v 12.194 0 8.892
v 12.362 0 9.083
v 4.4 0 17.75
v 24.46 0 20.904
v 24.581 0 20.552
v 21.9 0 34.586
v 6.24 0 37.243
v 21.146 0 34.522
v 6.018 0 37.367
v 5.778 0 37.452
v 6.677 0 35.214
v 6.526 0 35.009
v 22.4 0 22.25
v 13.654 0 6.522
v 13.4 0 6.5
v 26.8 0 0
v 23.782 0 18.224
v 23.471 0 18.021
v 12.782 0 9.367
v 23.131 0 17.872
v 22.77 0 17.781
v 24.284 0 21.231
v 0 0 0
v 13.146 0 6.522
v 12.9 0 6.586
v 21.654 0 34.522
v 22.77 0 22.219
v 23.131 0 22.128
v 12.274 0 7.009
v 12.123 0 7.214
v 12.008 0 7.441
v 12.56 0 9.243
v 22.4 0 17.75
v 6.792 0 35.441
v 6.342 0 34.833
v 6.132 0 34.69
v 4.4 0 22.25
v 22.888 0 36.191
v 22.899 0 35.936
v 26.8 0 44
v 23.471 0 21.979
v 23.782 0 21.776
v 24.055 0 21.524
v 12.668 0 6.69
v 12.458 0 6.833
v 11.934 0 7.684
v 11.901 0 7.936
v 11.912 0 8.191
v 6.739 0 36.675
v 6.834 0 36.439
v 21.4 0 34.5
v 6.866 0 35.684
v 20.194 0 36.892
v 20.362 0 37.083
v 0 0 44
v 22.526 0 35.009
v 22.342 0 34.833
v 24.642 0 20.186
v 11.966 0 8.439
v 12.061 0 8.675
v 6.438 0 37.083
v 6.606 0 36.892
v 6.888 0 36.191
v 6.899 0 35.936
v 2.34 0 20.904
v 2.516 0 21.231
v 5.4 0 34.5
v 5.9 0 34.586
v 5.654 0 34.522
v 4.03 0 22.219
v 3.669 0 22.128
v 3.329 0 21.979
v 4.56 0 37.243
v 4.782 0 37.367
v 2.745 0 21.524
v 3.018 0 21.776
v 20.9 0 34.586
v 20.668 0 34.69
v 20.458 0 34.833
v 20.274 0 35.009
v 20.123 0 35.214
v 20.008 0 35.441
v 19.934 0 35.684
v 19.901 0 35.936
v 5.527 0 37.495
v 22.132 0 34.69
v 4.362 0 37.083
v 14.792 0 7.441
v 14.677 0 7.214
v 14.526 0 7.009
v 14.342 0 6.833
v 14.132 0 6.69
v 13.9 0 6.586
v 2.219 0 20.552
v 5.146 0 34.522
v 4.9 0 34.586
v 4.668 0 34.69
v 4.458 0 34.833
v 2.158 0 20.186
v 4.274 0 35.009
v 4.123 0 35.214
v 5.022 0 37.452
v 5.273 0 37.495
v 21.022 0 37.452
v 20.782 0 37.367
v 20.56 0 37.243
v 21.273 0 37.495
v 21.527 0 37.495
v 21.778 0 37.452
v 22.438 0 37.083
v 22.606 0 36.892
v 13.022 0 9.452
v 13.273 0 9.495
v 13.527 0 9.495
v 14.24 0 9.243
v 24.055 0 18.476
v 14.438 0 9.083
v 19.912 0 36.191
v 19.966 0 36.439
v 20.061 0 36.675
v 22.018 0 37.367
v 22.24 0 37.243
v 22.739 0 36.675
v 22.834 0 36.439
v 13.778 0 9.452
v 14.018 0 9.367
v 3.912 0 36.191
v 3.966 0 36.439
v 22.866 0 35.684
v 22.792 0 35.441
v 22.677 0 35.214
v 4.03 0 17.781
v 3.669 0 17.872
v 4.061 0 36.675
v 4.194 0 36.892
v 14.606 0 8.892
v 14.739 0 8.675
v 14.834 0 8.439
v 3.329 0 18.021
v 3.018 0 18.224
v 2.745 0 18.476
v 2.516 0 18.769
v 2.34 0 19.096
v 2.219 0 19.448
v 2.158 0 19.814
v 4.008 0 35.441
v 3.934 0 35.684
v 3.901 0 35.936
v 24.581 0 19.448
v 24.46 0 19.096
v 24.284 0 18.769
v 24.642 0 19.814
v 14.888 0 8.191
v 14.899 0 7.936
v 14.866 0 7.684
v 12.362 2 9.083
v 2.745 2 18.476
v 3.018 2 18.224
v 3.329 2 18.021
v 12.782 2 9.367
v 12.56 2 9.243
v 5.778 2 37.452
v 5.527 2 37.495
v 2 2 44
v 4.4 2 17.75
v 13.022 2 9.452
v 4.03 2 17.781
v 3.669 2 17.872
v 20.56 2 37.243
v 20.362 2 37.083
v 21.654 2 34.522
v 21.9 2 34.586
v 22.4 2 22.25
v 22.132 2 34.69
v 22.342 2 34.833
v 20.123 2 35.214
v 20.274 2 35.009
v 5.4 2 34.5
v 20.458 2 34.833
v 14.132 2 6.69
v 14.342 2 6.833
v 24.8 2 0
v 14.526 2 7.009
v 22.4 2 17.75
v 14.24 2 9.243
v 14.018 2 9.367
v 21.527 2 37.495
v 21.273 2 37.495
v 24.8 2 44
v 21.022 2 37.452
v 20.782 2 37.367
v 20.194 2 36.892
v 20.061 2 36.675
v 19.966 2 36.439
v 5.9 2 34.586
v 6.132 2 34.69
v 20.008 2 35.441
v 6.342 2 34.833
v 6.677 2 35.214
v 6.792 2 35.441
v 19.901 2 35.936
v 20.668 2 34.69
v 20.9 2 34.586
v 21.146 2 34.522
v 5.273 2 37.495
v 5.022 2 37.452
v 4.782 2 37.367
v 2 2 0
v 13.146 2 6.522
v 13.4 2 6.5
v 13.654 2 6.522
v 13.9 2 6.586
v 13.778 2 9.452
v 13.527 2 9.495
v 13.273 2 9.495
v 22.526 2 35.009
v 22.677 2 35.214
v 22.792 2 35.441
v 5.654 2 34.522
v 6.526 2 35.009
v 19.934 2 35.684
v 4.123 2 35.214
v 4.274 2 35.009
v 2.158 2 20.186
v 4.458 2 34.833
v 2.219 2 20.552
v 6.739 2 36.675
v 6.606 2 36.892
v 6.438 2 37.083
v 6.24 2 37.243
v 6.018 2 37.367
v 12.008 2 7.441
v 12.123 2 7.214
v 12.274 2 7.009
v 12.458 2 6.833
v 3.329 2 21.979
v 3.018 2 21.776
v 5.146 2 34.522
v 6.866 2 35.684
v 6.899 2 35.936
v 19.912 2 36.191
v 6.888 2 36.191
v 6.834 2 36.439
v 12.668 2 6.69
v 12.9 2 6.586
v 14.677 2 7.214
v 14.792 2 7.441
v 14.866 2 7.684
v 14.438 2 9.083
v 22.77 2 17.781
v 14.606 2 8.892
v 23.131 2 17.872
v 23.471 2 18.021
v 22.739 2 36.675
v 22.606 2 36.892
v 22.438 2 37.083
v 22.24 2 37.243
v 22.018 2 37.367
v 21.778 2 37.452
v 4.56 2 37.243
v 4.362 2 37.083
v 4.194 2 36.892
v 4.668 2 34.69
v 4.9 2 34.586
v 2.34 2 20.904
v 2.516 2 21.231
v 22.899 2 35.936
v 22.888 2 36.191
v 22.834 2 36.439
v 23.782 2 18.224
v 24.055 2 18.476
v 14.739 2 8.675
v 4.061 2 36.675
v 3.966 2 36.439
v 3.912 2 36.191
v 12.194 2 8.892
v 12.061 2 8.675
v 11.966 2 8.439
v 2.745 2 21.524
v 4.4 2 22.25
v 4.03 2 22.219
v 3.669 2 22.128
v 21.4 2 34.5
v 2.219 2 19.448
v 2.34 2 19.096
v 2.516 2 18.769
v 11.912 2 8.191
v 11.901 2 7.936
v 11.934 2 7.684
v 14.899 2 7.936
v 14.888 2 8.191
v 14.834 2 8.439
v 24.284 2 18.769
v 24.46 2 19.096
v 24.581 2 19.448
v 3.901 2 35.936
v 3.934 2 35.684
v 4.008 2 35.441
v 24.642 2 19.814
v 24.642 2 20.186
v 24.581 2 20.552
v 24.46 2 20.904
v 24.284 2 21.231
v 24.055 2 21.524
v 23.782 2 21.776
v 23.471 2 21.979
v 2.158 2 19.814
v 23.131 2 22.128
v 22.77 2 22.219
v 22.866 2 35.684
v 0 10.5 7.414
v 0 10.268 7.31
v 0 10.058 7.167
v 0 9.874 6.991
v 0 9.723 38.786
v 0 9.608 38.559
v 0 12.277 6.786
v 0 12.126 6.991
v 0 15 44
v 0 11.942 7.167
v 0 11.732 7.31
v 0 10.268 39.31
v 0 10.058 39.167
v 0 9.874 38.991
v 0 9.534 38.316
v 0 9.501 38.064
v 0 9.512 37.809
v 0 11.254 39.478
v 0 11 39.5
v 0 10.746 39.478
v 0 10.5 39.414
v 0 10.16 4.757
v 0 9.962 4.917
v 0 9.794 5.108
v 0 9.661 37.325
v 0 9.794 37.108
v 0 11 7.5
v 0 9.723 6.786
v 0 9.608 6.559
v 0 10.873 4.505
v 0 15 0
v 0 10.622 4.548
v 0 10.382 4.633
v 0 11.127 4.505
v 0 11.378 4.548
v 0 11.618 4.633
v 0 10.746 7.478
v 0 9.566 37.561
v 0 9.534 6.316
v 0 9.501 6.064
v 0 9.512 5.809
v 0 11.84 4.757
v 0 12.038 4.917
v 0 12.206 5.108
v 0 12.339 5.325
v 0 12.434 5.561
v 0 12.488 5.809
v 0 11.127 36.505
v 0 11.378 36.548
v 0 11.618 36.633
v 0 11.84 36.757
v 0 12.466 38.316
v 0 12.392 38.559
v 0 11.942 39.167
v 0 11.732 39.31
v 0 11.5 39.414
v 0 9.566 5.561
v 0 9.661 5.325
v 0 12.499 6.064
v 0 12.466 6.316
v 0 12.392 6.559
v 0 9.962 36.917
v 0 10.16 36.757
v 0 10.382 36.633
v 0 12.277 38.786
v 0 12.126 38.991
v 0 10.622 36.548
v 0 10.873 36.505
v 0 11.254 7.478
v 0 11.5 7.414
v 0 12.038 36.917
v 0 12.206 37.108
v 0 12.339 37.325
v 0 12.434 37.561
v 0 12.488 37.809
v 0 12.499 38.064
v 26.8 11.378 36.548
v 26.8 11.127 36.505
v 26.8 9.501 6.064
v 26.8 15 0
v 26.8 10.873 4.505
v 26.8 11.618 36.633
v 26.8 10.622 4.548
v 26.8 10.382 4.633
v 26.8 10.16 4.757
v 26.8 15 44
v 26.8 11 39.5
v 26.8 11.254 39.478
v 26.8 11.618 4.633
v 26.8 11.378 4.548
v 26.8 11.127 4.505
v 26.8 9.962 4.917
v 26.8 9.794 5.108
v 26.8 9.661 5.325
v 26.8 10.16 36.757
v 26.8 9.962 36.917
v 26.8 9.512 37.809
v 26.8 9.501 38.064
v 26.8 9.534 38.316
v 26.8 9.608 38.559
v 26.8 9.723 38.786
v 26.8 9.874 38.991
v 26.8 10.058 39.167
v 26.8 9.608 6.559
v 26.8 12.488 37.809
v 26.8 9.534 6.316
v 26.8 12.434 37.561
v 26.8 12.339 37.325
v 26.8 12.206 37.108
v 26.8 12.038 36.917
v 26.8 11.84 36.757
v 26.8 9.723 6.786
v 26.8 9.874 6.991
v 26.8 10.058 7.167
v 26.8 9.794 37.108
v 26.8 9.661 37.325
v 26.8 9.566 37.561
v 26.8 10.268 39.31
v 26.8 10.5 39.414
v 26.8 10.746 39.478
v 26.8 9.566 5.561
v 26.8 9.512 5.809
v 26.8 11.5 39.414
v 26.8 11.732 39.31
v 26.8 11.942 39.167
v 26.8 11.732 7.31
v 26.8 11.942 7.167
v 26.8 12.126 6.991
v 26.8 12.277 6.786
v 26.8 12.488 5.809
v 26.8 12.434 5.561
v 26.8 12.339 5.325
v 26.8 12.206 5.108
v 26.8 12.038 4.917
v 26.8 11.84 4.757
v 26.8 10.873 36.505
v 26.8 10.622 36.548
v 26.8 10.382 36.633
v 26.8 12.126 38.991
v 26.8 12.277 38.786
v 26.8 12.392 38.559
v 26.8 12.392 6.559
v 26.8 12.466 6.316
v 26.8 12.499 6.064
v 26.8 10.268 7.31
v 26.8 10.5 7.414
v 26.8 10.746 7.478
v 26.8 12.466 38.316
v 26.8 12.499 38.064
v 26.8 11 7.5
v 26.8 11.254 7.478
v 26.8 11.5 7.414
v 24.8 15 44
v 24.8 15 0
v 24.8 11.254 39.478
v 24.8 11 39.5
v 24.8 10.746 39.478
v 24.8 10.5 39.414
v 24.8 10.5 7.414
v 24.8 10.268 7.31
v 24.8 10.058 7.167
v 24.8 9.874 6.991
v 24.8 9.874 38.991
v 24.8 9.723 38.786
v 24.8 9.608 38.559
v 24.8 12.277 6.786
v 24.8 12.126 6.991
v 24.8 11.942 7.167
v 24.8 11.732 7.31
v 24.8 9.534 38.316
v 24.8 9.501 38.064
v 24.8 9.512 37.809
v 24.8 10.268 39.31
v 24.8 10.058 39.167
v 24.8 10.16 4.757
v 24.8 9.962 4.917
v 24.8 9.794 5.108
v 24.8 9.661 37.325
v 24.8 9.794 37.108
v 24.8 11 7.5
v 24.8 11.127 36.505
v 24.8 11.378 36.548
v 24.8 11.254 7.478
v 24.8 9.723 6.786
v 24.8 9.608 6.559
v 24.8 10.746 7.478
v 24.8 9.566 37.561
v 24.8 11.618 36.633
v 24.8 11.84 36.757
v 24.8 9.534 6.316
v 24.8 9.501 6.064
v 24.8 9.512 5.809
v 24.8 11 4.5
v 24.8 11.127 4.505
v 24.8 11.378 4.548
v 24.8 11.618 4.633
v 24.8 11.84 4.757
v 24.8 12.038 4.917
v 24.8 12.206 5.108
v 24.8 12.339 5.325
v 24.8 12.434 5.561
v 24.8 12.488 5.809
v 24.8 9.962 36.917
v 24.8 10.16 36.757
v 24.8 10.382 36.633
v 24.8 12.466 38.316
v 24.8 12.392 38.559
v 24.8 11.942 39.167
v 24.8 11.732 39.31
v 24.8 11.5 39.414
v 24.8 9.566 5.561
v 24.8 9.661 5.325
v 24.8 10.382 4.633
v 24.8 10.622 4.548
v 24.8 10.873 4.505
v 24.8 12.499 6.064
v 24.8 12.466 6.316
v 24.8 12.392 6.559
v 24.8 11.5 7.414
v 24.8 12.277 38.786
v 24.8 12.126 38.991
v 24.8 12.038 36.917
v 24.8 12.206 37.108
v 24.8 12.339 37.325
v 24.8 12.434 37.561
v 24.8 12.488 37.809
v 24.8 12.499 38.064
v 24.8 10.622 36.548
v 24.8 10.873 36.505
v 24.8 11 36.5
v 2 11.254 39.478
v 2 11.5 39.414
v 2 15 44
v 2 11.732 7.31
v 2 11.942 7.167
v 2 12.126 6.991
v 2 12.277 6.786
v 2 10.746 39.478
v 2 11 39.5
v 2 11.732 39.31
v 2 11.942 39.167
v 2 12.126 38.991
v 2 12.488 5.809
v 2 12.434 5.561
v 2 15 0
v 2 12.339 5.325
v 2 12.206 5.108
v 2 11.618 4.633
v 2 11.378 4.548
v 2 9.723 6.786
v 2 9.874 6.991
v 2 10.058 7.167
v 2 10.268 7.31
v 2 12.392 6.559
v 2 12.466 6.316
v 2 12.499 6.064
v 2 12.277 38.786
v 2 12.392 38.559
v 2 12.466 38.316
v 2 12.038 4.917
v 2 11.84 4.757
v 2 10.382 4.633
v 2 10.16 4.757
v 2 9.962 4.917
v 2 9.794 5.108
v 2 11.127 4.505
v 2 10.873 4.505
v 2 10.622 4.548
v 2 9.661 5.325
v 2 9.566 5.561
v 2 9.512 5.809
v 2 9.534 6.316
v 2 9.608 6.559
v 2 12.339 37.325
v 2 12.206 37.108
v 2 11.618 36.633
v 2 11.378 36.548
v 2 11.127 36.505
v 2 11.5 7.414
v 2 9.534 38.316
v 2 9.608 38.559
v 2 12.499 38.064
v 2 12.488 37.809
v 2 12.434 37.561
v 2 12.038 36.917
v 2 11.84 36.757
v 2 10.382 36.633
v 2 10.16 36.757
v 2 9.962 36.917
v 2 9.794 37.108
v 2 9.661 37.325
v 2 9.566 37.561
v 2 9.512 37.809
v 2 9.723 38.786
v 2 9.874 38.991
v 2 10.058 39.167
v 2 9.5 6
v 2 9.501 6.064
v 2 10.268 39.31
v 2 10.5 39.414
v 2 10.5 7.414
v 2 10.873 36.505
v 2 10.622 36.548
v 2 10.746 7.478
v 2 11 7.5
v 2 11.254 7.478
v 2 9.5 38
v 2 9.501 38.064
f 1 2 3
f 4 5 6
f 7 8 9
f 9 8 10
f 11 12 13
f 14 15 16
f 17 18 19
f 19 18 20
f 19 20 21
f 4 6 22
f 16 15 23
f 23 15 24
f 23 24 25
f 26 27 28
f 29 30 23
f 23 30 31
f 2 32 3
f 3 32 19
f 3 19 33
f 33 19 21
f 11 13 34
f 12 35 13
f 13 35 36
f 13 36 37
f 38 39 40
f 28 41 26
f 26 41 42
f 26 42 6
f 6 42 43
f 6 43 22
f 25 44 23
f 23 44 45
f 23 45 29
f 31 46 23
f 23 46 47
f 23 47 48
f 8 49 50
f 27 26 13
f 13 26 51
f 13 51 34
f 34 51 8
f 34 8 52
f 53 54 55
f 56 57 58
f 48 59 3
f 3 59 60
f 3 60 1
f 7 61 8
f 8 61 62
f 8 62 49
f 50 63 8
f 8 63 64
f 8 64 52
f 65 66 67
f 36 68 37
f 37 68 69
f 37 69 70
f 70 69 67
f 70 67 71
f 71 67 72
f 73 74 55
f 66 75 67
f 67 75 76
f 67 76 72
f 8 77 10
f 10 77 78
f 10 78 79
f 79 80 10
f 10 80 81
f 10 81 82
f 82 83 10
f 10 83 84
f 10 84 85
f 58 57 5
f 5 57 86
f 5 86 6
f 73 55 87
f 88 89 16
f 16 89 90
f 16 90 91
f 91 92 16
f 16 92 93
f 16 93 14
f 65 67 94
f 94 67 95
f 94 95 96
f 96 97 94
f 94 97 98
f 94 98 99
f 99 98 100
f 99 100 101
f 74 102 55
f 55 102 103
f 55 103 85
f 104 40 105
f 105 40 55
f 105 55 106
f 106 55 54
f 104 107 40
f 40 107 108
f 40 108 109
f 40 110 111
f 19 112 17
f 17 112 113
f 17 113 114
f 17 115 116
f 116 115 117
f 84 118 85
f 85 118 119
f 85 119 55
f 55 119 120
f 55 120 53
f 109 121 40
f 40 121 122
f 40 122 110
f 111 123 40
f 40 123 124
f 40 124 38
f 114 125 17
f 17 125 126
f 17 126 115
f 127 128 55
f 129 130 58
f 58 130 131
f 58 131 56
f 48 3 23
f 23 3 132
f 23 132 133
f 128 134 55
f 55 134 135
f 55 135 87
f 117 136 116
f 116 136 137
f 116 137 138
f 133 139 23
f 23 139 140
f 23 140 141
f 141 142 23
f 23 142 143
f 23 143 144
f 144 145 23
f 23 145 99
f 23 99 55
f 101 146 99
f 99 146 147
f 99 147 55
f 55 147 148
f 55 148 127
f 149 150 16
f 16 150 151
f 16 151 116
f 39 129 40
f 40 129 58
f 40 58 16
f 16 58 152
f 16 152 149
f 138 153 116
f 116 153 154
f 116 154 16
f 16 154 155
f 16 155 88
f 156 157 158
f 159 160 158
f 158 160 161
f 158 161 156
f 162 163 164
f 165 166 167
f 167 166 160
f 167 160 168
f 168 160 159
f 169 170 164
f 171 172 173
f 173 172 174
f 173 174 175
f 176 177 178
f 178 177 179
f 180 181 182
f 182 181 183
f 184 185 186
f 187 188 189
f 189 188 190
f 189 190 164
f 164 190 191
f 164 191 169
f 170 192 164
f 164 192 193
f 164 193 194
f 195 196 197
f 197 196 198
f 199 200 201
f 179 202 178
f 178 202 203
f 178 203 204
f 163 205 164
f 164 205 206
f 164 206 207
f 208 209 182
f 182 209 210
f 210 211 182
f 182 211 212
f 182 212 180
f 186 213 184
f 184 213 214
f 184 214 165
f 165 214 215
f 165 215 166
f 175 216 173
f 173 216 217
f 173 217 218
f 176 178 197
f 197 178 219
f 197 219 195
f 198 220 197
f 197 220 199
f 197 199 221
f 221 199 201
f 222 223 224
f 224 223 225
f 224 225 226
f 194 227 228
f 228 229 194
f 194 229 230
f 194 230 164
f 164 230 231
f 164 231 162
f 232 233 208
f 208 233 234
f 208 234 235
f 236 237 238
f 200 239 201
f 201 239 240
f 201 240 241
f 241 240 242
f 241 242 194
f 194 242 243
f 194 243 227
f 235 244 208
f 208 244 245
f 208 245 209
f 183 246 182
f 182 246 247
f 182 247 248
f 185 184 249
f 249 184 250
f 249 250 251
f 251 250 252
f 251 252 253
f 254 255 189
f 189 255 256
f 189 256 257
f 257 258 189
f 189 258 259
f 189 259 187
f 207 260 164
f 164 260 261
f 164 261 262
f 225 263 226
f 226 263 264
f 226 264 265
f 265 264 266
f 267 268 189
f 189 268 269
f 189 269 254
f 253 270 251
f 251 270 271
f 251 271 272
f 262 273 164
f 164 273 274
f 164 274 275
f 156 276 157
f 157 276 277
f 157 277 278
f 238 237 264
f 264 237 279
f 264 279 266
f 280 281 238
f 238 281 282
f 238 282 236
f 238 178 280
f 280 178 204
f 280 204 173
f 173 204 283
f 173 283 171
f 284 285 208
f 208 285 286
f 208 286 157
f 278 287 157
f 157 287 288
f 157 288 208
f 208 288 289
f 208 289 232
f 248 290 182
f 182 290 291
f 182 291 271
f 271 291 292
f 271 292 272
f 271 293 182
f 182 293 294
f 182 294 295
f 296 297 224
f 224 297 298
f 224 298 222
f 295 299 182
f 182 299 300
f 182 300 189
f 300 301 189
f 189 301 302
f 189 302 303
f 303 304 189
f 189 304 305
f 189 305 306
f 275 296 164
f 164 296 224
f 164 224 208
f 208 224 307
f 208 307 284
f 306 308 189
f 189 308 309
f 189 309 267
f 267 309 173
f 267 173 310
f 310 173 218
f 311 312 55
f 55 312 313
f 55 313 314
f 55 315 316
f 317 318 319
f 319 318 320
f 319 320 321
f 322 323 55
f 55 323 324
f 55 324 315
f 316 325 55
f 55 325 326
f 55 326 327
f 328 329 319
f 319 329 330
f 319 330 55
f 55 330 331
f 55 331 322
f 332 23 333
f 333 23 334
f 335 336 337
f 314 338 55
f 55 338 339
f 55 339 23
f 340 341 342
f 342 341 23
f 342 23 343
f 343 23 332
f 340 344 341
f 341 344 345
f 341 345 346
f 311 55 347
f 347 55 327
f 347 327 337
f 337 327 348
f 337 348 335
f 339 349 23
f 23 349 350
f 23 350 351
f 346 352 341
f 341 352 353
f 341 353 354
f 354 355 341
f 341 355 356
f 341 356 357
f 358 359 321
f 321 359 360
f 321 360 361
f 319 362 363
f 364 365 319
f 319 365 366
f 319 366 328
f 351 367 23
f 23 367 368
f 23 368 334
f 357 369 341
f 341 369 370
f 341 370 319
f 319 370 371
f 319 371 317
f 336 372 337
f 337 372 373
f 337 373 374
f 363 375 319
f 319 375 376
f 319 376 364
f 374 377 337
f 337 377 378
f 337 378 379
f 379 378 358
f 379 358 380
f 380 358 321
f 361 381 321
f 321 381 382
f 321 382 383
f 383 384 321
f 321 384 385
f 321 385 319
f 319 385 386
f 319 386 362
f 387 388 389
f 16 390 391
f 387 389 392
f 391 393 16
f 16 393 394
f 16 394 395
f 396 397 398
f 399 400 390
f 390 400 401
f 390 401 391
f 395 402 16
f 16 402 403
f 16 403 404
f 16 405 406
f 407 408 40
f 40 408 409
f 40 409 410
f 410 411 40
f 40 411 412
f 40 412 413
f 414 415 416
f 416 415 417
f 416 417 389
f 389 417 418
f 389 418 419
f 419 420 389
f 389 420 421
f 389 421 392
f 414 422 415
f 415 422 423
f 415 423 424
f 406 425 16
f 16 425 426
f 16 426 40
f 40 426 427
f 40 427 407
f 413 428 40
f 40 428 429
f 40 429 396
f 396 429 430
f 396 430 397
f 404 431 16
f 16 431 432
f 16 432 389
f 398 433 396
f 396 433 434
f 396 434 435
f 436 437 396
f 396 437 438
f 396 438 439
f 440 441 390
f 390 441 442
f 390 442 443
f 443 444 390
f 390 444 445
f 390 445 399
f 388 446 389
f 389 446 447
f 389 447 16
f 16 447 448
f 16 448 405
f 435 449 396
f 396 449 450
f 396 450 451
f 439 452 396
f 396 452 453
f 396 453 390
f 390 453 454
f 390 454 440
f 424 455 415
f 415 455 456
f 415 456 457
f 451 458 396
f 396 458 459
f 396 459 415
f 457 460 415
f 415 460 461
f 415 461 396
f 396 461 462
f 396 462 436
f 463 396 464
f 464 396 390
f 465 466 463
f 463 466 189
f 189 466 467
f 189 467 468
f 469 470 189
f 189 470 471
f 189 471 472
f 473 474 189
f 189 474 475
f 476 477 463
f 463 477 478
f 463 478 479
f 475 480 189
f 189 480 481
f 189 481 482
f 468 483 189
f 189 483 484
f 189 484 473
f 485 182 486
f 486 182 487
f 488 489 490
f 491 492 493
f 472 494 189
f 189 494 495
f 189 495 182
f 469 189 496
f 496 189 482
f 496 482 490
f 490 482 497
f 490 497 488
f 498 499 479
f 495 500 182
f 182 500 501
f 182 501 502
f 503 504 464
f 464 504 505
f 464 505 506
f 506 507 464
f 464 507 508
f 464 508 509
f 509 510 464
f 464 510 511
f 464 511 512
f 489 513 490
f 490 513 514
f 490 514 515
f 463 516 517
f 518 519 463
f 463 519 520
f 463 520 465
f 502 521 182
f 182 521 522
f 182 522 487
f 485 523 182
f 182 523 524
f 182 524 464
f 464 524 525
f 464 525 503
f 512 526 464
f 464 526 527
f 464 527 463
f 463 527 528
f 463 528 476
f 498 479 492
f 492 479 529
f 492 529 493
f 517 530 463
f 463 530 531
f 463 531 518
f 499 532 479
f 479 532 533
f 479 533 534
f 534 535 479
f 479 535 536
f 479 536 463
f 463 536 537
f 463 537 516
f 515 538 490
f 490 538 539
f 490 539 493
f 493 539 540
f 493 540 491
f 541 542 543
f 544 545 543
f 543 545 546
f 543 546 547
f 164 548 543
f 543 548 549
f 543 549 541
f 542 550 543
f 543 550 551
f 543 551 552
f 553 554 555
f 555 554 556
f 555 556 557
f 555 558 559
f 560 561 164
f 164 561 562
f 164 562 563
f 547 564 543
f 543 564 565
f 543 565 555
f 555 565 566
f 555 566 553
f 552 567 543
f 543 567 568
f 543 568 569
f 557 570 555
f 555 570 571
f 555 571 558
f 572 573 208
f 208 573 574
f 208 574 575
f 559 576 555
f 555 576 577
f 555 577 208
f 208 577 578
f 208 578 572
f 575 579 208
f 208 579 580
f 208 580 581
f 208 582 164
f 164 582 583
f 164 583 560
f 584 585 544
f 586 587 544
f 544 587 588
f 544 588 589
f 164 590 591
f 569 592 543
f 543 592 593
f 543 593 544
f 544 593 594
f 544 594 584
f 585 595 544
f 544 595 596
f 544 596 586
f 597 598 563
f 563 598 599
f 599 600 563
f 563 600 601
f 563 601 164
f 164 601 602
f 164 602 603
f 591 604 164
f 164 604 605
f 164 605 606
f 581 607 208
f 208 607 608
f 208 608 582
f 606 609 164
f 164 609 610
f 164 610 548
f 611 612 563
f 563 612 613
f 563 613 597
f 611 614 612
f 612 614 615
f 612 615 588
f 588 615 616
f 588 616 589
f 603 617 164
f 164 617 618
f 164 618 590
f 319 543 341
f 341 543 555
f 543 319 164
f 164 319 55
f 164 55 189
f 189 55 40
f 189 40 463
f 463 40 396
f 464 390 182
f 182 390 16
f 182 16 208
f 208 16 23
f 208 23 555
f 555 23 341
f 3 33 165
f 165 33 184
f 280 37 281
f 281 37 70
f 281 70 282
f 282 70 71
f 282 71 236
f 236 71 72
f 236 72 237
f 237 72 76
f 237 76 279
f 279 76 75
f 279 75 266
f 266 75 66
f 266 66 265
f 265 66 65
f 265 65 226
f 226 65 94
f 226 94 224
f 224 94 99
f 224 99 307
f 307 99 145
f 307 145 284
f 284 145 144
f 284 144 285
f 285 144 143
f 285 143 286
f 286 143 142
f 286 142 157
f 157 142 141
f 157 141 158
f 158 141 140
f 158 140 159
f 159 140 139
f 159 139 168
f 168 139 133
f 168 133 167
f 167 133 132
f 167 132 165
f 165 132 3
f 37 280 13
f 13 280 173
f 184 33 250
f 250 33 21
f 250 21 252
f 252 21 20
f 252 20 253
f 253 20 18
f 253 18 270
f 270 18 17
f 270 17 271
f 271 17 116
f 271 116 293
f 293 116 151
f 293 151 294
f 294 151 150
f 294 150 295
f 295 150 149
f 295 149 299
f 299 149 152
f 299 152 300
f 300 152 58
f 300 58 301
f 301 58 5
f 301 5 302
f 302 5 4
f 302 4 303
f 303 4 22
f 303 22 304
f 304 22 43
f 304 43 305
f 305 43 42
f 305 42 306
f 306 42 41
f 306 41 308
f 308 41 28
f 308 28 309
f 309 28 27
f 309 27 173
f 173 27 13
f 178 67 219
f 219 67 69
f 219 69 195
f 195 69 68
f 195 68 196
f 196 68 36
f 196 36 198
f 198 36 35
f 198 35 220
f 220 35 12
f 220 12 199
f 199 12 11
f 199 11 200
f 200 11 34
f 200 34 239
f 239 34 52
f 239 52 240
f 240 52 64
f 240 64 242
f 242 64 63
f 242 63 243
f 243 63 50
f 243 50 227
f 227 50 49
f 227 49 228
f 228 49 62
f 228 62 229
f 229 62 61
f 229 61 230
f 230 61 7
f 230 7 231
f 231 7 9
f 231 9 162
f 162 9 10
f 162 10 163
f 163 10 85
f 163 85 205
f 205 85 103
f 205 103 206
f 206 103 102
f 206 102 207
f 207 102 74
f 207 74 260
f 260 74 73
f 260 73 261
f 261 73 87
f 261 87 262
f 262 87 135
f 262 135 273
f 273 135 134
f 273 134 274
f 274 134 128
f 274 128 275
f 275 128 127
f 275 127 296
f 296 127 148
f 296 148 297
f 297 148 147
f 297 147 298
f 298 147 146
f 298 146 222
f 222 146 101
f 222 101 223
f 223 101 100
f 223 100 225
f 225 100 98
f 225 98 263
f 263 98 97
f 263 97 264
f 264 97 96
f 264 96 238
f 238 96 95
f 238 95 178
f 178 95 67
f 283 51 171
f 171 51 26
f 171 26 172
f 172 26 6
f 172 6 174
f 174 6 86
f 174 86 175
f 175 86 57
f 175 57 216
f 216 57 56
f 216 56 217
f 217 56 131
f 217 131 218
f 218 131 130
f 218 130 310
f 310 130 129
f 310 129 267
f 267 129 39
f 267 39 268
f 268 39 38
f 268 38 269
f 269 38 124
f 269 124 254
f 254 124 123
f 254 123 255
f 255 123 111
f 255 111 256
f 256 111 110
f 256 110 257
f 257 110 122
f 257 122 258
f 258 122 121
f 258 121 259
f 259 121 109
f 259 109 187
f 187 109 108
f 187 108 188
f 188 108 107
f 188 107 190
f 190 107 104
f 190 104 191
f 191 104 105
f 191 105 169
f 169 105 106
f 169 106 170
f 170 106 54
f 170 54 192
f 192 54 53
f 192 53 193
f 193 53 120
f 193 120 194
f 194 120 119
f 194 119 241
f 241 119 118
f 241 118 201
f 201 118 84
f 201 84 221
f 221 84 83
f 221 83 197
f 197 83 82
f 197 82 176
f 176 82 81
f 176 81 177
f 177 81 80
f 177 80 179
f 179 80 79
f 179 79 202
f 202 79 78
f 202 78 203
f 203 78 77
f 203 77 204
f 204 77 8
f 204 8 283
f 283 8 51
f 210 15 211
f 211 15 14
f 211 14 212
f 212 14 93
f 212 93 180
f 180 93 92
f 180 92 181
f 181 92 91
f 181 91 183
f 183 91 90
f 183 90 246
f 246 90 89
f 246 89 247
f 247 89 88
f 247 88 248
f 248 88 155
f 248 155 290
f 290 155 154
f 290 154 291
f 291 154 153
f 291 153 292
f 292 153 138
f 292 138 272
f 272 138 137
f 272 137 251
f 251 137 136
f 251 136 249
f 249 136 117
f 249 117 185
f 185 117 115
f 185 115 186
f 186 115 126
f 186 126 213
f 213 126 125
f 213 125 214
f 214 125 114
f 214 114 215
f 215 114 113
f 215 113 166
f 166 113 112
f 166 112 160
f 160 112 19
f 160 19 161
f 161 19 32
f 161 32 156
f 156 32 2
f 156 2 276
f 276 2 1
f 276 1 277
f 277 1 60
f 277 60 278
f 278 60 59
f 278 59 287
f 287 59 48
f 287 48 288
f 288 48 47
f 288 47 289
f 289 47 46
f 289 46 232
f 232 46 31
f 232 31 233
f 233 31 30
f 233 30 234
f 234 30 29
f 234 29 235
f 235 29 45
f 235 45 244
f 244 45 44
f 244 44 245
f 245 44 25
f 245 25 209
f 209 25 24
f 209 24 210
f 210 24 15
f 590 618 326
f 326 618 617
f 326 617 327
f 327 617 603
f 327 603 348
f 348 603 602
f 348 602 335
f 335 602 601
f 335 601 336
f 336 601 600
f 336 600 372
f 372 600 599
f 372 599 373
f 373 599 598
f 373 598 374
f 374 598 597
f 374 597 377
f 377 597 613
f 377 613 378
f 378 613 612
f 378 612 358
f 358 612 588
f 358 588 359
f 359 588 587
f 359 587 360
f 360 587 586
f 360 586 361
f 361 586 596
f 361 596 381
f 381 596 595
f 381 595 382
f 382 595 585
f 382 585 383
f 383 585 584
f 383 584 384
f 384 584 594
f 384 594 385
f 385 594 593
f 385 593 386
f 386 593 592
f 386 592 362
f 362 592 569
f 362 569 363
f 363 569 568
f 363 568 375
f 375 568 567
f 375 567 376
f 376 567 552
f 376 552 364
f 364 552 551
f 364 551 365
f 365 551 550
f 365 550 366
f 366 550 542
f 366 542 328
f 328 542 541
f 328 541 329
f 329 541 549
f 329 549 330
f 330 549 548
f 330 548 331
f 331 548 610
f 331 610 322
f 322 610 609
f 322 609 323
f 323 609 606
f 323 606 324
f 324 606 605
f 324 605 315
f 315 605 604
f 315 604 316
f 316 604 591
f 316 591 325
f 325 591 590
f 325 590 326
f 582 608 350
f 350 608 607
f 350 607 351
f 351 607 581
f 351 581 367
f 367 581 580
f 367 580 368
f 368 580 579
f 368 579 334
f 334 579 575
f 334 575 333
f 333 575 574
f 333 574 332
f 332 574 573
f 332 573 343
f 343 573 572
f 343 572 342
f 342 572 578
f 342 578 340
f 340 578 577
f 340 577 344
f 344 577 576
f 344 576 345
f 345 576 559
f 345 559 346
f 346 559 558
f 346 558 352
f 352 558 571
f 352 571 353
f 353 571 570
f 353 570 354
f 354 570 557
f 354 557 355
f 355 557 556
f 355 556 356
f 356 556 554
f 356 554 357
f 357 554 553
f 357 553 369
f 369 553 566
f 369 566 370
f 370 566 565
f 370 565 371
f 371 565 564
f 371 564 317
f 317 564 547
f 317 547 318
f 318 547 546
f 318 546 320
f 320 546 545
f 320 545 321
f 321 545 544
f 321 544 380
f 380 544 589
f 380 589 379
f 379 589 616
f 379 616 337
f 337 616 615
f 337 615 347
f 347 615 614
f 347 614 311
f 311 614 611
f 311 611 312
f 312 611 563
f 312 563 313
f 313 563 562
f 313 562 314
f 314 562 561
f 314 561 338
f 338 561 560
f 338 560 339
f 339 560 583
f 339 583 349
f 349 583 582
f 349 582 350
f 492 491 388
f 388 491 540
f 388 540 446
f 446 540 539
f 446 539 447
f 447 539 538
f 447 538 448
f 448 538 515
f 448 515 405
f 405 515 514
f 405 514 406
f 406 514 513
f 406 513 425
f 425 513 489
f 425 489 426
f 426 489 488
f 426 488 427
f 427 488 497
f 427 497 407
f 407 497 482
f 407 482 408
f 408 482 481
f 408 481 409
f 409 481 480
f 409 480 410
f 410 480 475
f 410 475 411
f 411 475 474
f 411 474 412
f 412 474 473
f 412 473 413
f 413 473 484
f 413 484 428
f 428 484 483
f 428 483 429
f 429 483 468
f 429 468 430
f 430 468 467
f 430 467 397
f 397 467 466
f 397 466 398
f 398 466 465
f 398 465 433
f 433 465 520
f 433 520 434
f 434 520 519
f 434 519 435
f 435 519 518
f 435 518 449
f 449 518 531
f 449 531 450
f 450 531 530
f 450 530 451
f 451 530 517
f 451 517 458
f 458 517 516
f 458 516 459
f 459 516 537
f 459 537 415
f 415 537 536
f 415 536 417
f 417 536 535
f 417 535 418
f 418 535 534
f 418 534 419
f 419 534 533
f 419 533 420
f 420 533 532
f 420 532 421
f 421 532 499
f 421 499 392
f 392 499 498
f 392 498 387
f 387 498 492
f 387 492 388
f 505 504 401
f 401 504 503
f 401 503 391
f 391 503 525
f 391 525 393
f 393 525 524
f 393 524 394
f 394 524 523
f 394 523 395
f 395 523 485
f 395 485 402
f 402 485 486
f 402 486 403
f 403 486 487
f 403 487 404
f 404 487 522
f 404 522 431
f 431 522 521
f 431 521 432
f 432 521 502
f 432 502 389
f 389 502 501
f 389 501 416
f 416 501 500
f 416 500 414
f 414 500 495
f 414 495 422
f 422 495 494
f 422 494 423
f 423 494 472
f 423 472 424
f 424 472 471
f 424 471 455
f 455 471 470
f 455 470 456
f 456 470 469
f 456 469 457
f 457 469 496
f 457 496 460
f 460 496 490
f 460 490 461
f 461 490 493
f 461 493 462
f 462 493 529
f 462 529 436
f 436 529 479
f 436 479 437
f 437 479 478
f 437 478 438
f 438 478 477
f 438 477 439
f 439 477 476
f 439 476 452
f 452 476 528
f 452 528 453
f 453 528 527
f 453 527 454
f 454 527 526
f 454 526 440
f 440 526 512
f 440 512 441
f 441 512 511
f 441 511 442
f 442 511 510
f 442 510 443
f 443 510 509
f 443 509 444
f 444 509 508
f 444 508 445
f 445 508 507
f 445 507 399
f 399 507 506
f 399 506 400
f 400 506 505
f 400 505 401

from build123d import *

# Parameters (mm, degrees)
BOSS_EXTRUDE1_DEPTH = 44
SKETCH3_R           = 1.5
CUT_EXTRUDE1_DEPTH  = 30
SKETCH4_R           = 1.5
CUT_EXTRUDE2_DEPTH  = 30


with BuildPart() as part:
    # Sketch2 → Boss-Extrude1 (new body)
    with BuildSketch(Plane.XY):
        Polygon((24.8, 15), (26.8, 15), (26.8, 0), (0, 0), (0, 15), (2, 15), (2, 2), (24.8, 2), align=None)
    extrude(amount=BOSS_EXTRUDE1_DEPTH)

    # Sketch3 → Cut-Extrude1 (cut)
    with BuildSketch(Plane.XZ):
        with Locations(Location((21.4, 36, 0), (0, 0, 270))):
            Circle(SKETCH3_R)
        with Locations(Location((13.4, 8, 0), (0, 0, 270))):
            Circle(SKETCH3_R)
        with Locations(Location((5.4, 36, 0), (0, 0, 270))):
            Circle(SKETCH3_R)
        with BuildLine():
            Line((22.4, 17.75), (4.4, 17.75))
            ThreePointArc((4.4, 17.75), (2.15, 20), (4.4, 22.25))
            Line((4.4, 22.25), (22.4, 22.25))
            ThreePointArc((22.4, 22.25), (24.65, 20), (22.4, 17.75))
        make_face()
    extrude(amount=-CUT_EXTRUDE1_DEPTH, mode=Mode.SUBTRACT)

    # Sketch4 → Cut-Extrude2 (cut)
    with BuildSketch(Plane.ZY):
        with Locations((6, 11)):
            Circle(SKETCH4_R)
        with Locations((38, 11)):
            Circle(SKETCH4_R)
    extrude(amount=-CUT_EXTRUDE2_DEPTH, mode=Mode.SUBTRACT)


solid = part.part
